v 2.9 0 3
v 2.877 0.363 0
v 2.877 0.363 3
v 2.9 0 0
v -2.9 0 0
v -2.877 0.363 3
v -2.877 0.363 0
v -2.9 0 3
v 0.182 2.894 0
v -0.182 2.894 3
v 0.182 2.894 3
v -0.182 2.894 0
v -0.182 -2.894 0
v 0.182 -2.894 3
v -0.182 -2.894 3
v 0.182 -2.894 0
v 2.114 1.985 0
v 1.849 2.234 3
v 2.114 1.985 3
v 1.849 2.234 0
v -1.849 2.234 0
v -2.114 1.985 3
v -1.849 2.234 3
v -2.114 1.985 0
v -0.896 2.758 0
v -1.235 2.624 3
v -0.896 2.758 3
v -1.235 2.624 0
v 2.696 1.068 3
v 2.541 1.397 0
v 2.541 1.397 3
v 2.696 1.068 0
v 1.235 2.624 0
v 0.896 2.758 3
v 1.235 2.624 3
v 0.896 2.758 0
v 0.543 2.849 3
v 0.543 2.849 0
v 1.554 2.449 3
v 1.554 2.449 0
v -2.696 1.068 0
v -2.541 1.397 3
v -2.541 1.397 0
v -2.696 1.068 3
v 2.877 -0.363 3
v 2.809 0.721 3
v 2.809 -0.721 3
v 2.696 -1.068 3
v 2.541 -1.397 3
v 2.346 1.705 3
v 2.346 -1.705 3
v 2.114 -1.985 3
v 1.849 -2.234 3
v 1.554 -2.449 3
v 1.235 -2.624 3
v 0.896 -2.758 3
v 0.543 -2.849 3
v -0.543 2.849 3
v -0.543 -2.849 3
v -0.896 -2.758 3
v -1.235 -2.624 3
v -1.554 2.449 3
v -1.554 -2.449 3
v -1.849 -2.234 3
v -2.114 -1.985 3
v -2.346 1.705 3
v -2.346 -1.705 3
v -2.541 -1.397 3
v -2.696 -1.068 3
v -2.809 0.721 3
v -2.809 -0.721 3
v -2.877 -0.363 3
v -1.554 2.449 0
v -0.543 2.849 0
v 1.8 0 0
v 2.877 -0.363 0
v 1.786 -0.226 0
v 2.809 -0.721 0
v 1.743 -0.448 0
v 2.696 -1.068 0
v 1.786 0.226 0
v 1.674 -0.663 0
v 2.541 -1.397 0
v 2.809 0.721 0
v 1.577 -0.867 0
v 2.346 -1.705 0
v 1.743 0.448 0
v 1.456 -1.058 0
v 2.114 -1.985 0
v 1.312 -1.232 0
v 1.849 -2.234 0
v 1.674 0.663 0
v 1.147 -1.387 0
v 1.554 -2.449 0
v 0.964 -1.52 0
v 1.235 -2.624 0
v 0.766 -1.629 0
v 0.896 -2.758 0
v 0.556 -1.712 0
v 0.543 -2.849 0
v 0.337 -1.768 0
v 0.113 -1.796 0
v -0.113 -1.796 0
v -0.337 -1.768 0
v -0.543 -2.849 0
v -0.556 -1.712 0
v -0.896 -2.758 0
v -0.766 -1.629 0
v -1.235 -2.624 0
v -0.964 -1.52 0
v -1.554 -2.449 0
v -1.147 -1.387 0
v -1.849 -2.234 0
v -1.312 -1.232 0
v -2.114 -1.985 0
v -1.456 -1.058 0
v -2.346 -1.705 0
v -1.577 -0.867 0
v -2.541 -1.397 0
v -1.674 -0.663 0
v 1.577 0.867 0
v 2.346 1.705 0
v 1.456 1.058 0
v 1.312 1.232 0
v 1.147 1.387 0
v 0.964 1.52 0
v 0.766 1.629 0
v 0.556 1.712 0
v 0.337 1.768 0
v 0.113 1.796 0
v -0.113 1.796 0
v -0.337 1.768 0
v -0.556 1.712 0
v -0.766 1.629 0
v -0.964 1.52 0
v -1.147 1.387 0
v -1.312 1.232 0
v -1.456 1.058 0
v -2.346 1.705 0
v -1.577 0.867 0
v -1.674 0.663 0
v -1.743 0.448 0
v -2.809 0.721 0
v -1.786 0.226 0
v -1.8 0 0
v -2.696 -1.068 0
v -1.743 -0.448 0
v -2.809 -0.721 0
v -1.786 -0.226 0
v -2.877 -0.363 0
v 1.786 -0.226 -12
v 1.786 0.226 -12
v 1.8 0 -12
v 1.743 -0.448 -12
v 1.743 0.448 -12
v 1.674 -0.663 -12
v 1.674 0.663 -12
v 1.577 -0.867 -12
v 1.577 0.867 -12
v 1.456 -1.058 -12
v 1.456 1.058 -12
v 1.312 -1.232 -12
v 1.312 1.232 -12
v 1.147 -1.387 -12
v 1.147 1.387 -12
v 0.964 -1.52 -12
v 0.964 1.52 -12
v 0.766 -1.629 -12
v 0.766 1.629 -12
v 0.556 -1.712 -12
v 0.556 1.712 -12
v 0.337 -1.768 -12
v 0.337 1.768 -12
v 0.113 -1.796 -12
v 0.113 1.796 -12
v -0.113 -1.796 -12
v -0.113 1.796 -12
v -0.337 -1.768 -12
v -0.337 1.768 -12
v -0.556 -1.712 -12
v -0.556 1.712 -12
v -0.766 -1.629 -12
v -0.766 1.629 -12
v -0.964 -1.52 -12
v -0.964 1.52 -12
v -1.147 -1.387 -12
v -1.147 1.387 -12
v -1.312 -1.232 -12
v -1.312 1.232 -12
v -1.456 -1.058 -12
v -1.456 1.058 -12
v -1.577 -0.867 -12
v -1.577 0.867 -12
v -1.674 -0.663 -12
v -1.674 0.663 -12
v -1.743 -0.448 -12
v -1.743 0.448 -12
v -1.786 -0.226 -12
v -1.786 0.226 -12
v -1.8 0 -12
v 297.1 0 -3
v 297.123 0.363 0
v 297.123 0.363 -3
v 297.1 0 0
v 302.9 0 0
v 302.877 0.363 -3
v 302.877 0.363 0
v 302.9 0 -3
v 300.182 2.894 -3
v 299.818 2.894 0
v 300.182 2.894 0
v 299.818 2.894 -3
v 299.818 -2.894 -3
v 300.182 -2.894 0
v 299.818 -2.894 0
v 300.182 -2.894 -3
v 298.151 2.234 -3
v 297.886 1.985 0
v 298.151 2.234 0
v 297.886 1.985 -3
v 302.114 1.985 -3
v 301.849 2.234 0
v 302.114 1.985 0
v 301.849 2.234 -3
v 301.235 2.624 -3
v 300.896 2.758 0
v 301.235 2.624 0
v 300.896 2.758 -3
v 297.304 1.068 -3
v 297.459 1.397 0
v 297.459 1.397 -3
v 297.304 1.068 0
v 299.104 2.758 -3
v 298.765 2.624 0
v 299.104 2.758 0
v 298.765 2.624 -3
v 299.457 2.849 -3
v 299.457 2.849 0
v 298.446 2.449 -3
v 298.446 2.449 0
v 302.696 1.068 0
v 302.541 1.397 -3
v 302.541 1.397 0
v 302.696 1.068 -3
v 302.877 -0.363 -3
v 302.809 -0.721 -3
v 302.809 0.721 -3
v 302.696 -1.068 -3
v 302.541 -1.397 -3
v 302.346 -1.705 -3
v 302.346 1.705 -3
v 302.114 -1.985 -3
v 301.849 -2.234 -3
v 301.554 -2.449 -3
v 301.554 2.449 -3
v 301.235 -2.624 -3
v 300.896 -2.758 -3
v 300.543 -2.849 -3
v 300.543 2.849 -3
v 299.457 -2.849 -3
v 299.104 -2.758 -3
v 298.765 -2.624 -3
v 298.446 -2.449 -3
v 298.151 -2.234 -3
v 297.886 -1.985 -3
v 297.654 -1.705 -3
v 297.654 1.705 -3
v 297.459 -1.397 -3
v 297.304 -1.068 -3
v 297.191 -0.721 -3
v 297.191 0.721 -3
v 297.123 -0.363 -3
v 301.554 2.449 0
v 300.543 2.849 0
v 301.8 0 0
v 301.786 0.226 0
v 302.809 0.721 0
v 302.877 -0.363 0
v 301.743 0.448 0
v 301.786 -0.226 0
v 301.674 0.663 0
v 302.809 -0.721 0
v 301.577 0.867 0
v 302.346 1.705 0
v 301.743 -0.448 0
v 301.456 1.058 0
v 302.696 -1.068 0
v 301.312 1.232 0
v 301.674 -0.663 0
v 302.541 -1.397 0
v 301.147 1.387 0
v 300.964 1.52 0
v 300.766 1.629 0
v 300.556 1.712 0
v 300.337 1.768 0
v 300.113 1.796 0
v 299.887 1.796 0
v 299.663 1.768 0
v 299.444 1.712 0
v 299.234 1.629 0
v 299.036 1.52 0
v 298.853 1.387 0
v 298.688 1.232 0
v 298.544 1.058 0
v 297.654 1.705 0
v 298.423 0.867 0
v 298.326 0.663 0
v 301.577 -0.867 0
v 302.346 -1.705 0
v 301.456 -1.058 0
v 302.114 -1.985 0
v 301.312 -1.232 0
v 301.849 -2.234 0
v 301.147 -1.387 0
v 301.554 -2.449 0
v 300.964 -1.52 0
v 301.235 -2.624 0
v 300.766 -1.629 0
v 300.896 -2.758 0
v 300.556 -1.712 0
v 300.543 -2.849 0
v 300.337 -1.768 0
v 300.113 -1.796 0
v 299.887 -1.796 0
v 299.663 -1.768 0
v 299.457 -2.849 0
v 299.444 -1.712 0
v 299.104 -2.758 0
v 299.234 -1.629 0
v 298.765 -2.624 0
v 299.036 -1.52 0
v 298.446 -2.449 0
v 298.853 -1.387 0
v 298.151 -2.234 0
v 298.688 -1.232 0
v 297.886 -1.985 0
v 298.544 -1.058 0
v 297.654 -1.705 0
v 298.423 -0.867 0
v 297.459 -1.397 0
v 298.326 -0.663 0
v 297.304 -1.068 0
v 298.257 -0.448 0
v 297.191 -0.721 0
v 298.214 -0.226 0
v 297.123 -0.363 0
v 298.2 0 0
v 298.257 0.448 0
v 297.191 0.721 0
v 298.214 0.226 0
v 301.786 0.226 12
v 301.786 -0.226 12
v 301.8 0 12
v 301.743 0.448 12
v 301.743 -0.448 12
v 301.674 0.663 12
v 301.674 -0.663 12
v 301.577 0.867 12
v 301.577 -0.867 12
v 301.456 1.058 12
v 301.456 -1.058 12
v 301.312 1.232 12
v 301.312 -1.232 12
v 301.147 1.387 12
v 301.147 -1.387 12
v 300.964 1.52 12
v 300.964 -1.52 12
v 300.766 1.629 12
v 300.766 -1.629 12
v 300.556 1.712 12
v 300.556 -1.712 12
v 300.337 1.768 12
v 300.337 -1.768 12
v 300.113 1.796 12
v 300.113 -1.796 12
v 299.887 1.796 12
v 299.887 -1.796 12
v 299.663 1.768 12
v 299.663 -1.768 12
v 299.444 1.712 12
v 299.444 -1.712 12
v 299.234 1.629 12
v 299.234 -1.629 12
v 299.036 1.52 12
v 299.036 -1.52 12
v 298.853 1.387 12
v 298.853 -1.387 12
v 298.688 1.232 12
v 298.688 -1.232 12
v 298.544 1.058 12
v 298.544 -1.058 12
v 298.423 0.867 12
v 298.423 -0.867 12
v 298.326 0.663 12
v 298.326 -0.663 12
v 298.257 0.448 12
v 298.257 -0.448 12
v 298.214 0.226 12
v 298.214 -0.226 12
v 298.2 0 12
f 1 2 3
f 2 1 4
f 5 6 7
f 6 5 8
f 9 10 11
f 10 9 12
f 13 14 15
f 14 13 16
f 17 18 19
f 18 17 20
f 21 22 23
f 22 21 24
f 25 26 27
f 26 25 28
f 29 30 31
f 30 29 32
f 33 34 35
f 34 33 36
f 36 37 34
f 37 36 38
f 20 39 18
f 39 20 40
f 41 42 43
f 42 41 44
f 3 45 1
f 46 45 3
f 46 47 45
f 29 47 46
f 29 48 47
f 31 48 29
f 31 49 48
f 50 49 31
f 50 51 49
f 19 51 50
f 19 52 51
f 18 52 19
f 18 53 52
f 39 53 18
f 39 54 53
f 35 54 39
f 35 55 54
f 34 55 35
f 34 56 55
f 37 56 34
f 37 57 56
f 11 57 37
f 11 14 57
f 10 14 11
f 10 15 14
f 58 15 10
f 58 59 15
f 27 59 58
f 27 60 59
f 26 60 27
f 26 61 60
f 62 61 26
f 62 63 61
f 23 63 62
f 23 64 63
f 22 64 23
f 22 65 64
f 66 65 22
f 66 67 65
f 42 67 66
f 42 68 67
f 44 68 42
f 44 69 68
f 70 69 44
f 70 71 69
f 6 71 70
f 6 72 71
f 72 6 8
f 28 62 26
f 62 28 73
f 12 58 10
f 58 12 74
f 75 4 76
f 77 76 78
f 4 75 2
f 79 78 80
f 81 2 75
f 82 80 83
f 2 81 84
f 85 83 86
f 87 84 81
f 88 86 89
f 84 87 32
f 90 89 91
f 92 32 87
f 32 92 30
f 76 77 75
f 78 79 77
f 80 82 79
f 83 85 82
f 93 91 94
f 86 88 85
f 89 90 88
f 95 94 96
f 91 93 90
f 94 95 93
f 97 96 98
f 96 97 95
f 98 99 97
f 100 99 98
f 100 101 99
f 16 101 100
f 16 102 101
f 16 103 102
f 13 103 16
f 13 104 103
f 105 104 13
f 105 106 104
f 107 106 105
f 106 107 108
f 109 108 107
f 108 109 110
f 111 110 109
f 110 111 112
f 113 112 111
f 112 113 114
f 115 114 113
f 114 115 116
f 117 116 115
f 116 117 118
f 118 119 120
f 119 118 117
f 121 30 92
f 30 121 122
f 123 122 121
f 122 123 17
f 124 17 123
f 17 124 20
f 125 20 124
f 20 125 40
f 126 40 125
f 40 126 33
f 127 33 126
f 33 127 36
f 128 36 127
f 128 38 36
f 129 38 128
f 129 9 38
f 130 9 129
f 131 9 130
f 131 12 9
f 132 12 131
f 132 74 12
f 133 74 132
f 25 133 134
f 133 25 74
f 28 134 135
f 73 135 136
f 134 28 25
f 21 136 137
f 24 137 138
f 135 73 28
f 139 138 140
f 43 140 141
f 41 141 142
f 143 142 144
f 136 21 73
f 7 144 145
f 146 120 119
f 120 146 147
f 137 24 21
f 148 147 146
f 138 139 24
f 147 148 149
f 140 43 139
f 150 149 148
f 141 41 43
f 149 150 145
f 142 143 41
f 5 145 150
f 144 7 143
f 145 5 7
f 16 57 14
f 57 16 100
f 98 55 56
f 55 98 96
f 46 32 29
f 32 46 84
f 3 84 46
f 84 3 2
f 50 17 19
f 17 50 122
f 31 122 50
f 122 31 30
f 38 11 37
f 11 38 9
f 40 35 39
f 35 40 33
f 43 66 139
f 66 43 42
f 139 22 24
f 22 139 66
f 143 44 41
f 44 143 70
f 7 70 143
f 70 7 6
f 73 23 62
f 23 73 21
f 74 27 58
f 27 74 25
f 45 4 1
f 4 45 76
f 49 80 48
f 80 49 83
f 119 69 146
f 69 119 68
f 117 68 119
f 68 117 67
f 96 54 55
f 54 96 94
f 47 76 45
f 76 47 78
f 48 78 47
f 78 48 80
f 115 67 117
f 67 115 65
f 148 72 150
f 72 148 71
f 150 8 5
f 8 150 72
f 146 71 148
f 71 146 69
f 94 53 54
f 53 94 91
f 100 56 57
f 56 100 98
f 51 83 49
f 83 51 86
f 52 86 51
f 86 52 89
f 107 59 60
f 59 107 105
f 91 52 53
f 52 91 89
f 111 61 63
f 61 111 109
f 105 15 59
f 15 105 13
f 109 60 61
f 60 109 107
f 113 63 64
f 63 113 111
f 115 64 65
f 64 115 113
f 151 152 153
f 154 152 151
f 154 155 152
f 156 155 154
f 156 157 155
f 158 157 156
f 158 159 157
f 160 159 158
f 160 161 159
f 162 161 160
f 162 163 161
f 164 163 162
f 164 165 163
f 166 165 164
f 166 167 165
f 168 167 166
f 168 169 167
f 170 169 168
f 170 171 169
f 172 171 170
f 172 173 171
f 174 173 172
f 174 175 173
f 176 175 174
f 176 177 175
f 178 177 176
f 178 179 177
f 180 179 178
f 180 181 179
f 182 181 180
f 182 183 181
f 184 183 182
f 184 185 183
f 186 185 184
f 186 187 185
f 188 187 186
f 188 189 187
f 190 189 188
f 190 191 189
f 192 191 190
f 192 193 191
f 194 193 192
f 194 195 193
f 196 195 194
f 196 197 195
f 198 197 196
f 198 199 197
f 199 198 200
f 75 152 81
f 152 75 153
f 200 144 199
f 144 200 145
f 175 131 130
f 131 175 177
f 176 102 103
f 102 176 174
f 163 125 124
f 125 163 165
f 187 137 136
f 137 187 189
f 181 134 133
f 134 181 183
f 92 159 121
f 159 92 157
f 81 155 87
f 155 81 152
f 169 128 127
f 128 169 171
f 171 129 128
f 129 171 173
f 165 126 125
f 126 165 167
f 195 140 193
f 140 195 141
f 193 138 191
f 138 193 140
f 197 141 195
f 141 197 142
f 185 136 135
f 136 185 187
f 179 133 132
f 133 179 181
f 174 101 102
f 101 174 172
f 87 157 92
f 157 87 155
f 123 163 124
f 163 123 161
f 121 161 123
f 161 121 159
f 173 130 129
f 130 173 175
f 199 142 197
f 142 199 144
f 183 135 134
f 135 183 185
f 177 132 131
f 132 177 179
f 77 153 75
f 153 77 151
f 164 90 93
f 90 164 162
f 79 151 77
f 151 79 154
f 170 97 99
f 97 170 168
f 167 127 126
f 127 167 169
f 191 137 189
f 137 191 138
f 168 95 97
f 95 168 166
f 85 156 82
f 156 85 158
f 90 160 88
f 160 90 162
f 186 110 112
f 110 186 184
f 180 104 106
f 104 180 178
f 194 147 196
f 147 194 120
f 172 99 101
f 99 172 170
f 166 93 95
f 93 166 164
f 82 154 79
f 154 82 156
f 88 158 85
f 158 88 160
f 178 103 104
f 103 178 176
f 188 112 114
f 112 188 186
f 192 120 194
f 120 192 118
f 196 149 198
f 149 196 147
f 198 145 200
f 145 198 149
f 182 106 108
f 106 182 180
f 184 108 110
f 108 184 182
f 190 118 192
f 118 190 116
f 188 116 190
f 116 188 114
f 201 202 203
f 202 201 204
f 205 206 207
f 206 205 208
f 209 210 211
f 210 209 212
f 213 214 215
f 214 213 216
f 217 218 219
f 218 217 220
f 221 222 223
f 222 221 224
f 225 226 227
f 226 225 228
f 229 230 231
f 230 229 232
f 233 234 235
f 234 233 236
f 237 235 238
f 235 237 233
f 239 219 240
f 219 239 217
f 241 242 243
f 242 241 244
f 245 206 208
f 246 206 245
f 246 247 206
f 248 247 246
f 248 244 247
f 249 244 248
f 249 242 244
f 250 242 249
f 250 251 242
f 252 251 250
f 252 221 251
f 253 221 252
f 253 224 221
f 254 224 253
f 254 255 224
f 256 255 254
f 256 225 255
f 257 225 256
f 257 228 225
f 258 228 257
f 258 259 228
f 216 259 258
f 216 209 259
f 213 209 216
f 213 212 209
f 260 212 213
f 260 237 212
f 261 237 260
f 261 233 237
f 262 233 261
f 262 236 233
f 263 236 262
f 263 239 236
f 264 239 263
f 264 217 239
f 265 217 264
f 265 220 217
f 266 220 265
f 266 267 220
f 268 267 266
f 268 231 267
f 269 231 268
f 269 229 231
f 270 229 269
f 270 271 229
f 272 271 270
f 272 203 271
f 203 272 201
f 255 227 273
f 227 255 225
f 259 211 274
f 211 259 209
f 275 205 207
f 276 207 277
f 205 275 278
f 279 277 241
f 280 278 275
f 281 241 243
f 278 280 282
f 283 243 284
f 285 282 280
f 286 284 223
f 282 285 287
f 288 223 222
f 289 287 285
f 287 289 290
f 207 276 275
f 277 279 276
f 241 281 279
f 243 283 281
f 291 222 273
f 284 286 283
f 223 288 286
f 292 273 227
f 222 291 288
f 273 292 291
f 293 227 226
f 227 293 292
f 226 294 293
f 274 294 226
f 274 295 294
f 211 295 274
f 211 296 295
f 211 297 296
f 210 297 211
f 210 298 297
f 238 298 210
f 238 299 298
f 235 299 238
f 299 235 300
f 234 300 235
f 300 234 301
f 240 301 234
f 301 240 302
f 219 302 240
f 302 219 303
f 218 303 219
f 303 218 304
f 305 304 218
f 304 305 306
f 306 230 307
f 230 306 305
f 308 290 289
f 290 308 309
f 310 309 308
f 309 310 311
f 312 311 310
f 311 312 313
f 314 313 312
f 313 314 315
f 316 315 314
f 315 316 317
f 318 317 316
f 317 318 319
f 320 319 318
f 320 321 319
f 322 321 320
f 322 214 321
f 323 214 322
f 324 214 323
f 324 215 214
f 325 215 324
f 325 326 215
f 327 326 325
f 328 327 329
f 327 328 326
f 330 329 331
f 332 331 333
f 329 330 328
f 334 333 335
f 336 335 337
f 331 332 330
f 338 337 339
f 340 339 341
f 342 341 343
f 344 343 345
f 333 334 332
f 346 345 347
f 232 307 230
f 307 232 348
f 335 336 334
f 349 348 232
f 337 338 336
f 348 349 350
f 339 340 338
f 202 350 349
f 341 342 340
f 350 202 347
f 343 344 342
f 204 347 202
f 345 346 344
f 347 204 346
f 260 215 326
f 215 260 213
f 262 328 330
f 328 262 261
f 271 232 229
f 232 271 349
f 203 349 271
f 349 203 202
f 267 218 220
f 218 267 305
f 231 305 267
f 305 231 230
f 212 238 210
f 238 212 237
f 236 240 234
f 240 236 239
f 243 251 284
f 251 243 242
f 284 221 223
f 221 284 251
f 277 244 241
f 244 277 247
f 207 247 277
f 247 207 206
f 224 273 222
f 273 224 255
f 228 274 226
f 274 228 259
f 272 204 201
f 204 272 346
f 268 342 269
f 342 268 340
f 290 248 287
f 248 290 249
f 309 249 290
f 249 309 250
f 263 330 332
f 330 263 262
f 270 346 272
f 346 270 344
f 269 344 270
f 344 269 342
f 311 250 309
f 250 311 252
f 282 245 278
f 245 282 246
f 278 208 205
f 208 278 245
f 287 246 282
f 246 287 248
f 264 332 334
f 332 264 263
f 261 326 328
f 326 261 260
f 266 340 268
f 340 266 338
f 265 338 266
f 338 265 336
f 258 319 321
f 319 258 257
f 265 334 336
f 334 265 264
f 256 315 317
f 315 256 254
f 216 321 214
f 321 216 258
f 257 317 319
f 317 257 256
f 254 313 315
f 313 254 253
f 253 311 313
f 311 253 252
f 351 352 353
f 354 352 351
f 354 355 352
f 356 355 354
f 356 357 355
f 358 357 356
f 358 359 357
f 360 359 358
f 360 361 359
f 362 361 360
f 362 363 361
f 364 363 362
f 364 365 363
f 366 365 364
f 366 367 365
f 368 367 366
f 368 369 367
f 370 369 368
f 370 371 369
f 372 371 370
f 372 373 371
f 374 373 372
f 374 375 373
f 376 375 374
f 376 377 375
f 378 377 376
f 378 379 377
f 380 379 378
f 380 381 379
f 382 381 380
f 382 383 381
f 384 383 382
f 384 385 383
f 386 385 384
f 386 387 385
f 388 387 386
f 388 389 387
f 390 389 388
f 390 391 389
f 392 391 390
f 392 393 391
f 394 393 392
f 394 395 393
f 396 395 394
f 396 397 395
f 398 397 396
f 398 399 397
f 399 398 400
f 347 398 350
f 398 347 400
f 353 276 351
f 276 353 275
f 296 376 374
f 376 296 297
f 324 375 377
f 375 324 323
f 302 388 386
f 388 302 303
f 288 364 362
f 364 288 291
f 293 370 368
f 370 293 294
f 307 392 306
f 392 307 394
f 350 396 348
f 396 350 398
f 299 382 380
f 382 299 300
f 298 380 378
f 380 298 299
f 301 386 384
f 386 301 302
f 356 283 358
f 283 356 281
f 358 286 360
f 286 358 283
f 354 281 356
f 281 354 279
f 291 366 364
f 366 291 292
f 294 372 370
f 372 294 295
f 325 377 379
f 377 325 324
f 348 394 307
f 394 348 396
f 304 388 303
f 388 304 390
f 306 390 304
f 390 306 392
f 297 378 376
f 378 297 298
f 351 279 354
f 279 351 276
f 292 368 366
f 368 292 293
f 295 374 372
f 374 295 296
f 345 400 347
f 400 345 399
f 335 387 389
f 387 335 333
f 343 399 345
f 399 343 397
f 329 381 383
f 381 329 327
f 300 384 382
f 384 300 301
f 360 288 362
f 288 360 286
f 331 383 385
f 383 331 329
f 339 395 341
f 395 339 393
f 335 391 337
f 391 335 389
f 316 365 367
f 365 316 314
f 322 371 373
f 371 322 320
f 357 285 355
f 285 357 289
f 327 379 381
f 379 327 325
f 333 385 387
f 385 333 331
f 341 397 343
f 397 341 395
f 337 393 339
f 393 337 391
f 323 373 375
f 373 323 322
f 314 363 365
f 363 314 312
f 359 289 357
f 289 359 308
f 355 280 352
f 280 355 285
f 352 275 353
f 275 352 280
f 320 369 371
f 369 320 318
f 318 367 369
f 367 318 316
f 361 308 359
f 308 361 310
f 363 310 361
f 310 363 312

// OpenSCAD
$fn = 50;


difference() {
	union() {
		translate(v = [0, 0, 0]) {
			rotate(a = [0, 0, 0]) {
				difference() {
					union() {
						cylinder(h = 3, r = 2.9000000000);
						translate(v = [0, 0, -12.0000000000]) {
							cylinder(h = 12.0000000000, r = 1.5000000000);
						}
						translate(v = [0, 0, -12.0000000000]) {
							cylinder(h = 12.0000000000, r = 1.8000000000);
						}
						translate(v = [0, 0, -12.0000000000]) {
							cylinder(h = 12.0000000000, r = 1.5000000000);
						}
					}
					union();
				}
			}
		}
		translate(v = [300, 0, 0]) {
			rotate(a = [0, 180, 0]) {
				difference() {
					union() {
						cylinder(h = 3, r = 2.9000000000);
						translate(v = [0, 0, -12.0000000000]) {
							cylinder(h = 12.0000000000, r = 1.5000000000);
						}
						translate(v = [0, 0, -12.0000000000]) {
							cylinder(h = 12.0000000000, r = 1.8000000000);
						}
						translate(v = [0, 0, -12.0000000000]) {
							cylinder(h = 12.0000000000, r = 1.5000000000);
						}
					}
					union();
				}
			}
		}
	}
	union();
}
